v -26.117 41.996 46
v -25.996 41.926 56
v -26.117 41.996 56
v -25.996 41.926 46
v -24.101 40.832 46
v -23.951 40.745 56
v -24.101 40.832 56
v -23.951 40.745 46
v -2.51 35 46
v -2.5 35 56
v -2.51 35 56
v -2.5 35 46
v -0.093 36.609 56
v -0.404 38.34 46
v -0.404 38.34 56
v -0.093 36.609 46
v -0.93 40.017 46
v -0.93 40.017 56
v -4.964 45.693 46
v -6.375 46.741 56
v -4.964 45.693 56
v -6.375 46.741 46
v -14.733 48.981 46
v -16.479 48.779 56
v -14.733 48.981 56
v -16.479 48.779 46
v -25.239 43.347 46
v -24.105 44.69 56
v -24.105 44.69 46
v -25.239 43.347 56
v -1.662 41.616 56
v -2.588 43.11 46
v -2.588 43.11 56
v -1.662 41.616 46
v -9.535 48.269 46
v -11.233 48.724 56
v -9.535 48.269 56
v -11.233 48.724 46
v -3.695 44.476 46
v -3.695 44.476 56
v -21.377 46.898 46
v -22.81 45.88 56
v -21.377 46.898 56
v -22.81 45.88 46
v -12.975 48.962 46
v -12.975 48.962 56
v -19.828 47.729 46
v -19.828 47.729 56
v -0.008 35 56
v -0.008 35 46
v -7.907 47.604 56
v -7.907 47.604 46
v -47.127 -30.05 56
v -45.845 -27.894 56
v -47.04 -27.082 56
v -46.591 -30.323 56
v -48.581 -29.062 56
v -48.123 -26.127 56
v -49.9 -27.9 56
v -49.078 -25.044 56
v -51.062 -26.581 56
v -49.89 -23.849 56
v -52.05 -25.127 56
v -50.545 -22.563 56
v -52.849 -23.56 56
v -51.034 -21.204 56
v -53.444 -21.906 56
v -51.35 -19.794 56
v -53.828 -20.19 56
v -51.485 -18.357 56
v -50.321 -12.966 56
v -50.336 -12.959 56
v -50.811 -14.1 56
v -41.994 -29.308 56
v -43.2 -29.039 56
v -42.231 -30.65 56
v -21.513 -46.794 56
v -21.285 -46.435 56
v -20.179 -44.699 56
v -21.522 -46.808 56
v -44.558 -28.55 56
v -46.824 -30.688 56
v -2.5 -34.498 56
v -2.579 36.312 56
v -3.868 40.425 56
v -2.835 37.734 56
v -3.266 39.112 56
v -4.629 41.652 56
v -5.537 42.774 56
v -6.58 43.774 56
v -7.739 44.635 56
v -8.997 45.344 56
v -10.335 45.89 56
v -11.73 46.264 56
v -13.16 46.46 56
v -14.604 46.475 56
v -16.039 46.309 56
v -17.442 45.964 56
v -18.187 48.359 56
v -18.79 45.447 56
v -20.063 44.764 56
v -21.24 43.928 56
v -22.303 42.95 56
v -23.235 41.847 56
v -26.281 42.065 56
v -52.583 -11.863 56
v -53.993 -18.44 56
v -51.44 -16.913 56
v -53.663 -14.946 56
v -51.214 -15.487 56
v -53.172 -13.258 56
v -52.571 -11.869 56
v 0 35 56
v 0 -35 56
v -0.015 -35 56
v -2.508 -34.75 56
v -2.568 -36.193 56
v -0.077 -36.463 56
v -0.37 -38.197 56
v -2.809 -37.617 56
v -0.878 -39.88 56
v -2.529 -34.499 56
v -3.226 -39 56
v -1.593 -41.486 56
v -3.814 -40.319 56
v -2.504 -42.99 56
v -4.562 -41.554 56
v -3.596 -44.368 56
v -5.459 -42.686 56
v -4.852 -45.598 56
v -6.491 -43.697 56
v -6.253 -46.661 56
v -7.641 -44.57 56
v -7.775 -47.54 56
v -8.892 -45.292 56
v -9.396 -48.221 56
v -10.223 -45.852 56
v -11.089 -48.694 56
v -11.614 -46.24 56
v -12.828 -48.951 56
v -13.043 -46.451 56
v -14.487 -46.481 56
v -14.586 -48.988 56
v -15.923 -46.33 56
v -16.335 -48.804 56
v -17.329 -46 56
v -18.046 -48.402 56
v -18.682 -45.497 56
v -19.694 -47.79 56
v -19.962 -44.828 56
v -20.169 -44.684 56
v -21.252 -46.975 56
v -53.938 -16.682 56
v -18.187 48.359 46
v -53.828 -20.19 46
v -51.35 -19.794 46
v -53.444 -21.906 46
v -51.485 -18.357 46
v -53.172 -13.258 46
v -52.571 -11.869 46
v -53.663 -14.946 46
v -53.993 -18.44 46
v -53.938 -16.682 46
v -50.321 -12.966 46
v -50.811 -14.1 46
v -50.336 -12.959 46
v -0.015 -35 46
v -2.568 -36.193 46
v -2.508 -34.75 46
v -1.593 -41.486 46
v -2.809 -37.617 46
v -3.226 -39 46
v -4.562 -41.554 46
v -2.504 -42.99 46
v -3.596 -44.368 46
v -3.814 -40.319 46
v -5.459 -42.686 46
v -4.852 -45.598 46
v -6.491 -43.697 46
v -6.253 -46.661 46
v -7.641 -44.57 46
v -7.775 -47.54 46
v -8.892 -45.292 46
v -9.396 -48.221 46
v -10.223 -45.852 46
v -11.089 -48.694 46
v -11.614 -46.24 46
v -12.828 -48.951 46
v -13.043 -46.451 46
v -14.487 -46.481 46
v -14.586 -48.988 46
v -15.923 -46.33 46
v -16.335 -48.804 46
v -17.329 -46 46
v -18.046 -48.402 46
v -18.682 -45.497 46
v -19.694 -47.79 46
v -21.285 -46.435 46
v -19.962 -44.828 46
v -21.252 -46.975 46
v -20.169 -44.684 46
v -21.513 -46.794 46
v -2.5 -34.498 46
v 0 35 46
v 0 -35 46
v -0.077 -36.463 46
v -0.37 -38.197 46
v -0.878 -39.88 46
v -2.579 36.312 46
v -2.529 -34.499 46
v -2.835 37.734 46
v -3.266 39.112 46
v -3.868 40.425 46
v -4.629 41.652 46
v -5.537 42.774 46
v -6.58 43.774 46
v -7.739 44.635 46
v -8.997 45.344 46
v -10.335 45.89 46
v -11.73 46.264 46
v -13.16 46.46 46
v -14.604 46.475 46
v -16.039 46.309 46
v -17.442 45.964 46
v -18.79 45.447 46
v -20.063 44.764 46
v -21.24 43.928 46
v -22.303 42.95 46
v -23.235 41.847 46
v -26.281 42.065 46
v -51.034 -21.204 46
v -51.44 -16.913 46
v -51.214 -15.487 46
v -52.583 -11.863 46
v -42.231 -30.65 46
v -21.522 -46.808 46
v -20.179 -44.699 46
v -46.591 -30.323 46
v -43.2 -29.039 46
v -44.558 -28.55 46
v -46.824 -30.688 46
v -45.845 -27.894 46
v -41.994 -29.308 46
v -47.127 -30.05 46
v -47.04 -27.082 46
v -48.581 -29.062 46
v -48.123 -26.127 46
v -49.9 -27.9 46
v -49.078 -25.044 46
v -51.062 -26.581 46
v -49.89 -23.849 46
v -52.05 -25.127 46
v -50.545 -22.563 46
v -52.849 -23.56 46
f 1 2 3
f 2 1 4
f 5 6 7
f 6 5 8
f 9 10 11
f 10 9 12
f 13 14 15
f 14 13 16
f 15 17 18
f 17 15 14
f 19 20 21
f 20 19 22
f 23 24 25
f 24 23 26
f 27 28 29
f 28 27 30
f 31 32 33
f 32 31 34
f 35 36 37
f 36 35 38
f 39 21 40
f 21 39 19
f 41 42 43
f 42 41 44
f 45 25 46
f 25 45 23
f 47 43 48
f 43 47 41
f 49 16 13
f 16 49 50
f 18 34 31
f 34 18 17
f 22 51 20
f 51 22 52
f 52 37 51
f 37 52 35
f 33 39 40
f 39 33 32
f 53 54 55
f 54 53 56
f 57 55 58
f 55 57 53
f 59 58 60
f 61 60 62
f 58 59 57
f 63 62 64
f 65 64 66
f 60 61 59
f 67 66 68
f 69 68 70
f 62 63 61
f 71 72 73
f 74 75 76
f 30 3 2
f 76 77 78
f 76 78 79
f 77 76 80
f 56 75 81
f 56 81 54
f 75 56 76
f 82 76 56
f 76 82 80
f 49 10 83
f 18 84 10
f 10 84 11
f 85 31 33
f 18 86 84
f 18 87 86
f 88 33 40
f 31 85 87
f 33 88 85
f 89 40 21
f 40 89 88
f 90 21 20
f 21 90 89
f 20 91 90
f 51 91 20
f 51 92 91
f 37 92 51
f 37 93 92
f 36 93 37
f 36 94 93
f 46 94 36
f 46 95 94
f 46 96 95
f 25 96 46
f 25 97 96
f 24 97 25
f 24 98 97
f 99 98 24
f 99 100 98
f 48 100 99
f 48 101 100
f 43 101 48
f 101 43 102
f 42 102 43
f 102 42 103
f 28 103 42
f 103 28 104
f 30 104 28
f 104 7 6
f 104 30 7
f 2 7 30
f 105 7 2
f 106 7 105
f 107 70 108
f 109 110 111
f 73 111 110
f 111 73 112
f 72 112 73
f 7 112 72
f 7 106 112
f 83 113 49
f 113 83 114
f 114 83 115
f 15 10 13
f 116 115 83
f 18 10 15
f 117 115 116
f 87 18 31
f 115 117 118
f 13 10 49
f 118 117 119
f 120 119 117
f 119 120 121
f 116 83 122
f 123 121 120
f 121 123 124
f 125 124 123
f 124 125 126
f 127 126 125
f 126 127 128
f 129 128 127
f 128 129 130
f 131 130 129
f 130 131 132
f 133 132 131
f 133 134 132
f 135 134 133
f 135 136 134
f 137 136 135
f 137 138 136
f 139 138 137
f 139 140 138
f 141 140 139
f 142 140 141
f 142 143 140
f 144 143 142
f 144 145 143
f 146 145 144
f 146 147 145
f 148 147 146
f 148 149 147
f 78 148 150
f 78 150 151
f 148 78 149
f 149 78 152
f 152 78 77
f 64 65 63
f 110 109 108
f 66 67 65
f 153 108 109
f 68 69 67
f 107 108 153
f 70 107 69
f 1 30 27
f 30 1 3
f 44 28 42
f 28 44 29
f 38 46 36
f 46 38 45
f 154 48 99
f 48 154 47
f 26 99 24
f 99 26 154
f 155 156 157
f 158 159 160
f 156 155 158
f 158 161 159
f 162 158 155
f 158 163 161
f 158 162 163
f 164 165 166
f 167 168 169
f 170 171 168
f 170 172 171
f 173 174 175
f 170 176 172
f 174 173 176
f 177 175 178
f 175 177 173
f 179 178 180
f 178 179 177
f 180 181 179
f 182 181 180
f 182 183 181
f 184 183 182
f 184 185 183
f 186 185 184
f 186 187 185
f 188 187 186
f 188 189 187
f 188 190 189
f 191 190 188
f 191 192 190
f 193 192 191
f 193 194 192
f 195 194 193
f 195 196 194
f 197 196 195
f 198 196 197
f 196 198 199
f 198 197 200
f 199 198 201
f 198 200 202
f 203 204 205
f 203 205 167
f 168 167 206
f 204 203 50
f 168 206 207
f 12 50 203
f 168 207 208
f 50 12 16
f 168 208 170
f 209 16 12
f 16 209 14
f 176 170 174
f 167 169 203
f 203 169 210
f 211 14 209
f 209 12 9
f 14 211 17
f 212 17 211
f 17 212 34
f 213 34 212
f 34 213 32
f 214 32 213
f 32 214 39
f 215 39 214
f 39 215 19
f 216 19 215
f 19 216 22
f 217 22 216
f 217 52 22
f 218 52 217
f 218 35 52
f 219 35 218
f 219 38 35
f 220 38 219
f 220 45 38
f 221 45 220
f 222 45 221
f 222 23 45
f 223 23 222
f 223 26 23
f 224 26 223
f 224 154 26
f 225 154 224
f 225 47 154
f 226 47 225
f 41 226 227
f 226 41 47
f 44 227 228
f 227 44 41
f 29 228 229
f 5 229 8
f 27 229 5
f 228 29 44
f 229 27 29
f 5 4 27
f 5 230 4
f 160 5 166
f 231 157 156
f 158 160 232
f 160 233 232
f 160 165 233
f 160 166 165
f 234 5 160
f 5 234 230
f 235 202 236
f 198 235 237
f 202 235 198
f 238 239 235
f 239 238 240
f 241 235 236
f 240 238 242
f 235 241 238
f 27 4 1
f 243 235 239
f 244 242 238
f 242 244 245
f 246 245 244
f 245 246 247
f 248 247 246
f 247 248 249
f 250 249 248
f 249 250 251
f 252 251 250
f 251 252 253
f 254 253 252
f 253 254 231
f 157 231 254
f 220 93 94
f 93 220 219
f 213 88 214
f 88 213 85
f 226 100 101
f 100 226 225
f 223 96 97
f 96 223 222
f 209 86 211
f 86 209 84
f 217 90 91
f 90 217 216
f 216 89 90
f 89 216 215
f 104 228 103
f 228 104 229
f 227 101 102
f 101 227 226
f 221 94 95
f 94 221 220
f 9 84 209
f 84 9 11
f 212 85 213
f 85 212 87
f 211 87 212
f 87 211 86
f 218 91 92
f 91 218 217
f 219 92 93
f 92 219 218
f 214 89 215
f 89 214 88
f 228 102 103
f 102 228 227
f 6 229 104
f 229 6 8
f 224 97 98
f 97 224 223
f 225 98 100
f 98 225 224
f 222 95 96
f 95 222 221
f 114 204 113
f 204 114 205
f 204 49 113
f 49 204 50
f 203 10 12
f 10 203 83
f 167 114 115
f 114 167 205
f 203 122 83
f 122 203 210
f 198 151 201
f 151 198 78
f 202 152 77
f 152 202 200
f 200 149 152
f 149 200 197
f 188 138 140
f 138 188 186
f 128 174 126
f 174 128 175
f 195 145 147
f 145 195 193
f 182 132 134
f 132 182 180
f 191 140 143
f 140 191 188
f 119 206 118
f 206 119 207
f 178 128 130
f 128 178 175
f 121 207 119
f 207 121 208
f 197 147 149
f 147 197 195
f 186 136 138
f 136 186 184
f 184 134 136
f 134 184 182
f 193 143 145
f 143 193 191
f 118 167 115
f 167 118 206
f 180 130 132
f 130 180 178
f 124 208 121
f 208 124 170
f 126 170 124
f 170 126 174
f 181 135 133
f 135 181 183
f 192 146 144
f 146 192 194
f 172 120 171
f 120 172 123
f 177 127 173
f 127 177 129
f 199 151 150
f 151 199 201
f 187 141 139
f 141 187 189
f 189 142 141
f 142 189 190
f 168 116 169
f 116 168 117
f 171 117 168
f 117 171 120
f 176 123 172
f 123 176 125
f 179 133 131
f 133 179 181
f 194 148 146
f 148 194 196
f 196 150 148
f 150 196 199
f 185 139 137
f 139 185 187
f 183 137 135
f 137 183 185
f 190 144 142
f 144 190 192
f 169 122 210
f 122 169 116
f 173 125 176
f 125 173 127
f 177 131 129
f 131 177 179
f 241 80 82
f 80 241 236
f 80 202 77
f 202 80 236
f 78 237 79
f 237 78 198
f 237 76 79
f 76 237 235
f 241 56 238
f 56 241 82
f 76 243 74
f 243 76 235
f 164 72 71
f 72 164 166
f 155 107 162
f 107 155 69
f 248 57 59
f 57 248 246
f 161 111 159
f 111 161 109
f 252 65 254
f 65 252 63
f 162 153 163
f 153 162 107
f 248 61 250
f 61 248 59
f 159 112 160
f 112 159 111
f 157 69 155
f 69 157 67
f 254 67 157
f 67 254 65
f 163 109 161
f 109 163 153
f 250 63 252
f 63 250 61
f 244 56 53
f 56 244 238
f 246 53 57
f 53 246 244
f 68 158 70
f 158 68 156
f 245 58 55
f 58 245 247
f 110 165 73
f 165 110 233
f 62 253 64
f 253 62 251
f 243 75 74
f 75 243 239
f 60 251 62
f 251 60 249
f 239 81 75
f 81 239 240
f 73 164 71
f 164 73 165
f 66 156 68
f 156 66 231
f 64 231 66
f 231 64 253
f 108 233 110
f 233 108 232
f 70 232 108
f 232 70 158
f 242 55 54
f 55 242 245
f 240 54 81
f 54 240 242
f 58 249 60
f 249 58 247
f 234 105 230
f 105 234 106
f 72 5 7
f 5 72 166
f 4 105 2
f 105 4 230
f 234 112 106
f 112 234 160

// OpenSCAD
// file: ../nuts.scad
include <settings.scad>;

module make_hex_nut(w, h, d=0){
    // d = inner diameter
    // w = width across the flats
    // h = height or thickness
    s = w/sqrt(3);
    difference(){
        union(){
            for(i=[0:1:2]){
                rotate([0,0,120*i])
                cube([w, s, h], center=true);
            }
        }
        if(d){
            cylinder(d=d, h=h+1, center=true);
        }
    }
}

//make_hex_nut(w=5, h=2, d=2.5);

module make_nut_2(d=2){
    make_hex_nut(w=4.8, h=2, d=d);
}

module make_nut_w4_h1p5(d=2){
    make_hex_nut(w=4, h=1.5, d=d);
}

module make_nut_2_5(d=2, h=3.5){
    make_hex_nut(w=5+tolerance/2, h=h, d=d);
}

module make_nut_2_5_test(){
    difference(){
        translate([0,0,-.5])
        cube([10,10,2], center=true);
        make_nut_2_5(d=0);
    }
}

module make_nut_2_5_test_downward(){
    difference(){
        translate([0,0,1])
        cube([10,10,2*2.5], center=true);
        color("red")
        make_nut_2_5(d=0);
        color("blue")
        cylinder(d=screw_thread_diameter, h=10, center=true);
    }
}

module make_nut_2_5_test_punchout(){
    difference(){
        translate([0,0,1.5])
        cube([10,10,2*1.5], center=true);
        color("red")
        make_nut_2_5(d=0);
        color("blue")
        cylinder(d=screw_thread_diameter, h=10, center=true);
    }
    color("green")
    translate([0,0,1.8])
    cube([10,10,track_punchout_thickness], center=true);
}

//make_nut_2_5_test();
make_nut_w4_h1p5();
//make_nut_2_5_test_downward();
//make_nut_2_5_test_punchout();
// file: flexiTreads.scad
// Robot tracks w/ flexible fillament
// hristo.staykov@gmail.com

pi = 3.141592653589793238;

//Calculate the variables bellow based on your requirements
//Note that by changing any values, you may also need to compute perfectWheelRadius manually.

trackWidth = 13.5;
trackOffset = 3;        //distance from chassis

wheelRadius = 19;//13.5; //includes the "sprokets" on the wheel

wheelWidth = trackWidth;//8;
wheelOffset = trackOffset + (trackWidth-wheelWidth)/2;
wheelSpacing = 40;//70;
wheelTeeth = 27;//TODO:vary based on wheelSpacing?
wheelSprockets = 17;

// C=2*pi*R + 2*flat
trackLength = 2*wheelRadius*pi + 2*wheelSpacing;

//trackLength = 210;    //Sillicone bracelets usualy have a circumference of 210mm and width of 12mm and can serve as a replacement for the printed tracks. If using a hard-coded value for trackLength, make sure to reflect changes on wheelSpacing.
//wheelSpacing = (trackLength - 2*wheelRadius*3.141592653589793238)/2;

trackRadius = trackLength/2/pi;
trackSprockets = round(wheelSprockets * trackRadius / wheelRadius);

perfectWheelRadius = wheelRadius;//13.5175311111111;  //the closest value to wheelRadius where the wheel sprockets and the track's ones are about the same size.
//TODO: Compute this automatically

//Bolts used for attaching wheels

boltDiameter = 3;	//M3, DIN912, like printrbot's ones
boltHeadHeight = 3;
boltHeadDiameter = 5.5;
boltLength=30;//excl. head
boltUnthreadedSegment=boltLength-18;


module wheel(r, w, offset, motor){
    //Set `motor` to true in order to include a 3mm D-shaft for attaching to pololu micro gearmotors
    inset=2;
    difference(){
	union(){
            rotate_extrude(convexity = 10)
		union(){
			square([r-w/4, w]);
			translate([r-w*1/4, w/2, 0])scale([0.5, 1, 1])circle(w/2, $fn=9);
		}
            difference(){
                translate([0, 0, w])cylinder(r1=5, r2=3, h=offset);
                if(!motor){
                    //cut space for a nut and a washer
                    translate([0, 0, w+offset-3])cylinder(r=5, h=3);
                }
            }//end diff

	}
	union(){
/*
            if (motor){
		translate([0, 0, w+offset-9])motorShaft();
		//the motor wheel will be connected with a module for additional support
            }else{
		
		cylinder(r=1.7, h=offset+w, $fn=32);
		cylinder(r=boltHeadDiameter/2+1, h=(wheelWidth+wheelOffset-boltUnthreadedSegment-3)+1, $fn=32);
		//1 extra mm for a washer
            }
*/

            for(i=[0:wheelSprockets]){
		rotate([0, 0, i*360/wheelSprockets])translate([r, 0, 0])cylinder(r=sprocketSize/2, h=w, $fn=4);
            }
	}	
    }//end diff
}
module wheelCap(inset, width, radius){
	cylinder(h=inset+width, r=5.5/2);
	cylinder(h=width, r=radius);
}
module helperWheel(r, w, wall, offset){
	cylinder(r=r, h=w);
	translate([0, 0, -1])cylinder(r=r+wall, h=1);

}
module motorShaft(){
    //3mm D-shaft for pololu micro gearmotors
    difference(){
	cylinder(h=9,r=1.7, $fn=64);
	translate([-5, 1.25, 0])cube(10);
    }
}


sprocketSize = 4;
module track(r, w=0, fullTrackWidth=0, gripSize=1, gripWidth=0, teeth=0, wr=0, ws=0){
    //Print with flexible fillament
    
    fullTrackWidth = fullTrackWidth ? fullTrackWidth : trackWidth;
    
    C = 2*r*pi;
    //gripSize = 1;//mm
    gripCount = floor(C/2/gripSize);
    //teeth = r;
    teeth = teeth ? teeth : r;
    wr = wr ? wr : wheelRadius;
    ws = ws ? ws : wheelSprockets;
    gripWidth = gripWidth ? gripWidth : fullTrackWidth-2;

    //trackRadius = trackLength/2/pi;
    trackSprockets = round(ws * r / wr);

    echo("fullTrackWidth:", fullTrackWidth);
    difference(){
        cylinder(r=r+1, h=fullTrackWidth, $fn=gripCount);
        cylinder(r=r-w/4, h=fullTrackWidth, $fn=trackSprockets);
        cylinder(r1=r-0.5,r2=r-w/4, h=(fullTrackWidth-w)/2, $fn=trackSprockets);
        translate([0, 0, fullTrackWidth-(fullTrackWidth-w)/2])cylinder(r2=r-0.5,r1=r-w/4, h=(fullTrackWidth-w)/2, $fn=trackSprockets);
        translate([0, 0,  (fullTrackWidth-w)/2]) rotate_extrude(convexity = 10)
		union(){
			square([r-w/4, w]);
			translate([r-w*1/4, w/2, 0])scale([0.5, 1, 1])circle(w/2, $fn=9);
		}
    }//end diff

    translate([0, 0, (fullTrackWidth-w)/2])
        intersection(){
            for(i=[0:trackSprockets]){
		rotate([0, 0, i*360/trackSprockets])translate([r-w*1/4+sprocketSize/2, 0, 0])scale([1, 0.72, 1])cylinder(r=sprocketSize/2, h=w, $fn=4);
            }
            cylinder(r=r, h=w);
        }
    for(i=[0:gripCount]){
        rotate([0, 0, i*360/gripCount])
        translate([r+1, 0, -gripWidth/2+fullTrackWidth/2])
        cylinder(r=gripSize/2, h=gripWidth, $fn=12);
    }

}


//track(trackRadius, wheelWidth);

/*
//mock tread to compare with tread cutout
translate([0,0,50])
color("red")
cylinder(r=trackRadius-.65, h=10, center=true);
*/

translate([0,0,0])wheel(perfectWheelRadius, wheelWidth, wheelOffset, false);

/*
translate([-wheelRadius-2,0,0])
wheel(perfectWheelRadius, wheelWidth, wheelOffset, false);
*/

/*
//mock wheel to compare with spoked wheel
translate([0,0,50])
color("red")
cylinder(r=wheelRadius, h=10, center=true);
*/
// file: flexiTreads_driver.scad
include <../settings.scad>;
use <flexiTreads.scad>;
use <../nuts.scad>;

module make_track_driver(){

	notch_depth = 0.5;

	difference(){
        difference(){
			rotate([0,0,90])
		    if(track_wheel_show_fancy){		
                wheel(track_wheel_radius, track_wheel_width, track_wheel_offset, false);
		    }else{
		        cylinder(d=track_wheel_radius*2, h=track_wheel_width, center=false);
		    }

			difference(){
	            cylinder(d=track_driver_hole_radius*2, h=track_wheel_width*10, center=true);
				color("blue")
				translate([0,track_driver_hole_radius*3/2+track_driver_hole_radius-notch_depth,0])
				cube([track_driver_hole_radius*3,track_driver_hole_radius*3,track_wheel_width*20], center=true);
			}

        }

	// set screw cutout
	translate([0,track_driver_hole_radius+2.5,track_wheel_width/2]){
		rotate([90,0,0]){
			color("red")
			hull(){
				make_nut_2(w=6, d=0);
				translate([0,10,0])
				make_nut_2(w=6, d=0);
			}
		}
		color("green")
		translate([0,track_wheel_radius/2-4,0])
		rotate([90,0,0])
		cylinder(d=track_driver_set_screw_shaft_d, h=track_wheel_radius, center=true);
		
		color("blue")
		translate([0,track_wheel_radius/2-1,0])
		rotate([90,0,0])
		cylinder(d=track_driver_set_screw_head_d, h=track_wheel_radius/2, center=true);
	}

	}// end diff


}

make_track_driver();
// file: flexiTreads_idler.scad
include <../settings.scad>;
use <flexiTreads.scad>;

module make_track_idler(){
	hole_d = 10+0.3;
    if(track_wheel_show_fancy){
        difference(){
            union(){
                wheel(track_wheel_radius, track_wheel_width, track_wheel_offset, false);
                
                color("red")
                for(i=[0:1])
                translate([0,0,-0.5 + i*11])
                mirror([0,0,i])
                cylinder(d1=track_wheel_radius*2+2, d2=track_wheel_radius*2-4, h=1, center=true, $fn=100);
            }
                    
            // axle hole
            cylinder(
                d=screw_thread_diameter+tolerance*1.5,
                h=track_wheel_gap*2, center=true);
        
            // top bearing
            translate([0, 0, 13.5 - 2.5])
            cylinder(d=10+0.25, h=2.5*2, center=true);
        
            // bottom bearing
            translate([0, 0, -3.5+2.5])
            cylinder(d=10+0.25, h=2.5*2, center=true);
            
        }
    }else{
        cylinder(d=track_wheel_radius*2, h=track_wheel_width, center=false);
        cylinder(d=hole_d, h=track_wheel_width*10, center=true);
    }
}

make_track_idler();
// file: ../openscad-extra/wedge.scad
// Copyright 2013 Jonathan Hulka
// This program is free software; you can redistribute it and/or modify
// it under the terms of the GNU General Public License as published by
// the Free Software Foundation; either version 2 of the License, or
// (at your option) any later version.
// 
// This program is distributed in the hope that it will be useful,
// but WITHOUT ANY WARRANTY; without even the implied warranty of
// MERCHANTABILITY or FITNESS FOR A PARTICULAR PURPOSE.  See the
// GNU General Public License for more details.
// 
// You should have received a copy of the GNU General Public License
// along with this program; if not, write to the Free Software
// Foundation, Inc., 51 Franklin Street, Fifth Floor, Boston,
// MA 02110-1301, USA.


//Creates a wedge-shaped section of a cylinder
//The result is centered with the open part of the wedge facing in the positive y direction
//h - height
//r - radius
//a - angle
//$fn=100;
module wedge(h, r, a, $fn=50)
{
    th=(a%360)/2;
    difference()
    {
        cylinder(h=h,r=r,center=true, $fn=$fn);
        if(th<90)
        {
            for(n=[-1,1])rotate(-th*n)translate([(r+0.5)*n,0,0])
                cube(size=[r*2+1,r*2+1,h+1],center=true);
        }
        else
        {
            intersection()
            {
                rotate(-th)translate([(r+0.5),(r+0.5),0])
                    cube(size=[r*2+1,r*2+1,h+1],center=true);
                rotate(th)translate([-(r+0.5),(r+0.5),0])
                    cube(size=[r*2+1,r*2+1,h+1],center=true);
            }
        }
    }
}

wedge(h=1, r=1, a=270);
// file: ../settings.scad
// Common settings used by all scad files.

// ALL UNITS IN MILLIMETERS (MM)!!!

$fn = 30;//low-res but fast to render
//$fn = 50;//higher-res but slow to render

pi = 3.1415926535897932384626433832795;

max_footprint = 150; // 15x15 cm

bottom_clearance = 10;
bottom_clearance = 25.4/2+10;
//bottom_clearance = 30;

shell_alpha = 0.215;
//shell_alpha = 1.0;

tolerance = 0.5;

// Flat countersunk M2.5mm x 0.45mm machine screw.
screw_thread_diameter = 2.5;//2.8;//2.75;//2.4?
screw_thread_length = 5;//?
screw_head_diameter = 4.75; // M2.5
//screw_head_diameter = 5.2; // M3
screw_head_height = 1.5;//2;

screw_thread_diameter2 = 2;

unit_thickness = 5;
u = unit_thickness;

shell_thickness = unit_thickness;

// Show flags.
show_platform = 1;
show_head = 1;
show_head_shell = 0;
show_head_electronics_bb = 0;
show_inner_head = 0;
show_battery = 1;
show_foot_cube = 0;
show_torso = 0;
show_motor = 0;
show_motor_wheeled_layout = 1;
show_motor_treads = 0;
show_motor_plates = 1;
show_motor_inner_plates = 1;
show_motor_outer_plates = 1;
show_wheel = 0;//obsolete
show_tracks = 1;//
show_track_wheels = 1;
show_caster = 0;
show_rpi = 1;
show_vertical_plates = 1;//
show_horizontal_plates = 1;//
show_caster_plates = 0;//obsolete?
show_camera = 1;
show_screen = 0;
show_edge_mount = 1;
show_sonar_mount = 1;
show_recharge_mount = 1;
show_conduit = 1;
show_torso_shell = 0;
show_recharge_dock = 0;
show_head_tilt_axis = 0;
show_rpi_camera_axis = 0;
show_laser_axis = 0;

head_vertical_angle_tilt = 0;
//head_vertical_angle_tilt = 30;//max
//head_vertical_angle_tilt = 10;

torso_height = 120+20;

base_plate_diameter = max_footprint-unit_thickness*2;
base_plate_frame = 0;

head_height = 50;
head_offset_z = max_footprint/2;
head_middle_cutout = 85;

rpi_with_four_hats_and_clearance = 76;

motor_gear_teeth = 26;

qrd1114_w = 6.10;
qrd1114_l = 4.39;
qrd1114_h = 4.65;

dock_radius = 10;
dock_gripper_border = 2;
dock_gripper_instep = 0.9;
dock_gripper_cutout_tapper = 50;
dock_receiver_height = 5;

// Patriod Fuel+ 9000 mAh
battery_length = 90;
battery_width = 57;
battery_height = 23;
battery_offset_z = 30;//4;

wheel_diameter = 50;
wheel_offset_x = 65;
wheel_offset_z = wheel_diameter/2;
wheel_axle_diameter = 5;

//caster_diameter = 19.05; // 0.75 inches
caster_diameter = 25.45; // 1 inches
//caster_diameter = 15.875; // 5/8 inches
caster_holder_diameter = 30;//31;
caster_offset_y = base_plate_diameter/2 - caster_holder_diameter/2;

arduino_offset_x = 0;
arduino_offset_y = 0;
arduino_offset_z = 67;
arduino_offset_x2 = 0;
arduino_offset_y2 = -20;
arduino_offset_z2 = torso_height+bottom_clearance;

horizontal_plate_width = unit_thickness*8*2 - unit_thickness*2;
horizontal_plate_depth = unit_thickness*8*2;

vertical_plate_width = horizontal_plate_depth;
vertical_plate_height = unit_thickness*8;
vertical_plate_offset_x = wheel_offset_x-22.5;
vertical_plate_offset_z = vertical_plate_height/2 + unit_thickness/2;

vertical_battery_plate_height = 100 - 15;

caster_plate_width = horizontal_plate_width + unit_thickness*2;
caster_plate_mount_length = unit_thickness*4;
caster_plate_width_minor = caster_holder_diameter;

motor_switch_length = 20;
motor_switch_thickness = 6.5;
motor_switch_height = 11;
motor_switch_height_leads = 23;
motor_switch_on_height =  13.3;
motor_switch_hole_diameter = 2.5;
motor_switch_hole_offset_z = 6.5;//this plus diameter/2 is hole center from switch top
motor_switch_hole_spacing = 7.1;// holes are diameter/2 from this

motor_length = 60;
motor_width = 25;
motor_collar_width = 7;
motor_collar_height = 2.5;
motor_axle_width = 4;
motor_axle_height = 9.5;
motor_offset_x = 10;
//motor_offset_y = motor_width/2+5;
motor_offset_y = unit_thickness*3.5;
motor_offset_z = vertical_plate_height/2 - unit_thickness/2;//4;//30;
motor_mount_holes_dist = 17;
// motor countersink hole
motor_mount_holes_width = 3; // M3
motor_mount_holes_head_height = 2.2;
motor_mount_holes_head_width = 5.8;
motor_bearing_outer_diameter = 10;
motor_bearing_inner_diameter = 5.95;
motor_bearing_thickness = 2.5;

motor_unimount_idler_axle_d = screw_thread_diameter;
//motor_unimount_spacer_depth = 0.1;//too small
motor_unimount_spacer_depth = 0.5;

motor_arm_offset_y = -u*3;
motor_arm_offset_z = u*.5;

motor_plate_width = vertical_plate_width;
motor_plate_height = vertical_plate_height;
motor_plate_thickness = unit_thickness;
motor_plate_offset_z = vertical_plate_offset_z;

motor_plate_middle_thickness = 5;

wheel_hub_offset = u*3;

motor_hole_height_offset = -5;

nylon_spacer_outer_diameter = 6.35;
nylon_spacer_inner_diameter = 3.302;
nylon_spacer_length = 12.7;

track_width = unit_thickness*3;
track_offset_x = -50;
track_offset_z = .1;
//track_wheel_radius = 19;//original
track_wheel_radius = 14;
//track_wheel_hole_radius = (nylon_spacer_outer_diameter+1)/2;
track_wheel_hole_radius = motor_bearing_outer_diameter/2;

track_driver_hole_radius = (motor_axle_width)/2 + 0.1;
track_driver_set_screw_head_d = 4.1;
track_driver_set_screw_shaft_d = 2.4;
//track_wheel_width = 13.5;//original
track_wheel_width = u*2;
track_wheel_width_buffer = u*0.25;
track_offset = 3;        //distance from chassis
track_wheel_offset = track_offset;
//track_length = 250; // see tread_triangle.py, too big
//track_length = 240; // see tread_triangle.py
//track_length = 238; //inc/dec in 10 unit increments so notches match idlers
track_length = 228; //inc/dec in 10 unit increments so notches match idlers
track_radius = track_length/2/pi;
track_wheel_show_fancy = 1;
track_wheel_gap = track_wheel_width + track_wheel_width_buffer*2;
track_axle_bearing_diameter = motor_bearing_inner_diameter - 0.1;
track_tensioner_radius = 12;
track_nut_height = 3.5; //TODO
track_punchout_thickness = 0.25;//should be the same as the minimum layer thickness

head_slew_bearing_outer_diameter = 115;
head_slew_bearing_ring_thickness = 20;
head_slew_bearing_inner_diameter = head_slew_bearing_outer_diameter - head_slew_bearing_ring_thickness;
//head_slew_bearing_hole_diameter = head_slew_bearing_inner_diameter - head_slew_bearing_ring_thickness;
head_slew_bearing_hole_diameter = 12+tolerance; // slip ring https://www.adafruit.com/products/775
//head_slew_bearing_ball_diameter = 5;
head_slew_bearing_ball_diameter = 2.5; //u/2;
head_slew_bearing_height = u;//head_slew_bearing_ball_diameter*2;
head_slew_bearing_gap = 0.5;
head_slew_bearing_slew_gap = 0;
head_slew_bearing_gap_factor = 0.1;

neck_strut_width = u*7;
neck_strut_height = u*18;
neck_strut_spacing = u*8;

show_outer_race = 0;
show_inner_race_a = 1;
show_inner_race_b = 1;
show_balls = 0;
// main file
include <../settings.scad>;

use <../openscad-extra/wedge.scad>;
use <flexiTreads_idler.scad>;
use <flexiTreads_driver.scad>;

module mock_tread(){
    
    wheel_radius = track_wheel_radius;
    thickness = 2.5;
    tread_length = 65;
    depth = 10;
    
    // right
    r1_angle = 150;
    r1_length = 70;
    
    // left
    r2_angle = 125;
    r2_length = 30;
    
    // top
    r3_angle = 106;
    r3_length = 60;
    
    /*
    // bottom
    translate([wheel_radius-thickness/2, -50/2, 0])
    cube([thickness, tread_length, 20], center=true);
    
    // right
    rotate([0, 0, 150])
    translate([wheel_radius-thickness/2 + 2, 20, 0])
    cube([thickness, tread_length, 20], center=true);
    */
    
    // right
    translate([0, 10, 0])
    rotate([0, 0, -15]){
        
        rotate([0, 0, (180-r1_angle)/2])
        translate([wheel_radius-thickness/2, -r1_length/2, 0])
        cube([thickness, r1_length, depth], center=true);
        
        color("blue")
        difference(){
            wedge(h=depth , r=wheel_radius, a=r1_angle);
            translate([0,-0.01,0]) wedge(h=depth+1, r=wheel_radius-thickness, a=r1_angle);
        }
    }
    
    // left
    translate([0, -60, 0])
    rotate([0, 0, -150]){
        
        rotate([0, 0, (180-r2_angle)/2])
        translate([wheel_radius-thickness/2, -r2_length/2, 0])
        cube([thickness, r2_length, depth], center=true);
        
        color("blue")
        difference(){
            wedge(h=depth , r=wheel_radius, a=r2_angle);
            translate([0,-0.01,0]) wedge(h=depth+1, r=wheel_radius-thickness, a=r2_angle);
        }
    }
    
    // top
    translate([-26, -43, 0])
    rotate([0, 0, -243]){
        
        rotate([0, 0, (180-r3_angle)/2])
        translate([wheel_radius-thickness/2, -r3_length/2, 0])
        cube([thickness, r3_length, depth], center=true);
        
        color("blue")
        difference(){
            wedge(h=depth , r=wheel_radius, a=r3_angle);
            translate([0,-0.01,0]) wedge(h=depth+1, r=wheel_radius-thickness, a=r3_angle);
        }
    }
    
}

translate([-track_wheel_radius, 50/2, 50+1])
color("black")
mock_tread();

if(0)
rotate([0,-90,0]){

    echo("wheel(lr).y:", -(motor_plate_width/2+wheel_hub_offset/2)-motor_arm_offset_y);
    echo("wheel(lr).z:", -wheel_hub_offset/2+bottom_clearance);

    // left 1
        translate([
            horizontal_plate_width/2+u*2 + track_wheel_width_buffer,
            -(motor_plate_width/2+wheel_hub_offset/2)-motor_arm_offset_y,
            -wheel_hub_offset/2+bottom_clearance
        ])
    rotate([0,90,0])
    make_track_idler();
    // left 2
        translate([
            -(horizontal_plate_width/2+u*2 + track_wheel_width_buffer +u*2),
            -(motor_plate_width/2+wheel_hub_offset/2)-motor_arm_offset_y,
            -wheel_hub_offset/2+bottom_clearance
        ])
    rotate([0,90,0])
    make_track_idler();

    // right 1
        translate([
        horizontal_plate_width/2+u*2 + track_wheel_width_buffer,
            +(motor_plate_width/2+wheel_hub_offset/2+motor_arm_offset_y),
            -wheel_hub_offset/2+bottom_clearance
        ])
    rotate([0,90,0])
    make_track_idler();
    // right 2
        translate([
        -(horizontal_plate_width/2+u*2 + track_wheel_width_buffer +u*2),
            +(motor_plate_width/2+wheel_hub_offset/2+motor_arm_offset_y),
            -wheel_hub_offset/2+bottom_clearance
        ])
    rotate([0,90,0])
    make_track_idler();

    echo("wheel(c).y:", -motor_offset_y);
    echo("wheel(c).z:", bottom_clearance + motor_plate_height/2 + motor_hole_height_offset/2);

    // center 1
        translate([
            horizontal_plate_width/2+u*2 + track_wheel_width_buffer,
            -motor_offset_y,
            bottom_clearance + motor_plate_height/2 + motor_hole_height_offset/2
        ])
    rotate([0,90,0])
    make_track_driver();
    // center 2
        translate([
            -(horizontal_plate_width/2+u*2 + track_wheel_width_buffer +u*2),
            motor_offset_y,
            bottom_clearance + motor_plate_height/2 + motor_hole_height_offset/2
        ])
    rotate([0,90,0])
    make_track_driver();
}
